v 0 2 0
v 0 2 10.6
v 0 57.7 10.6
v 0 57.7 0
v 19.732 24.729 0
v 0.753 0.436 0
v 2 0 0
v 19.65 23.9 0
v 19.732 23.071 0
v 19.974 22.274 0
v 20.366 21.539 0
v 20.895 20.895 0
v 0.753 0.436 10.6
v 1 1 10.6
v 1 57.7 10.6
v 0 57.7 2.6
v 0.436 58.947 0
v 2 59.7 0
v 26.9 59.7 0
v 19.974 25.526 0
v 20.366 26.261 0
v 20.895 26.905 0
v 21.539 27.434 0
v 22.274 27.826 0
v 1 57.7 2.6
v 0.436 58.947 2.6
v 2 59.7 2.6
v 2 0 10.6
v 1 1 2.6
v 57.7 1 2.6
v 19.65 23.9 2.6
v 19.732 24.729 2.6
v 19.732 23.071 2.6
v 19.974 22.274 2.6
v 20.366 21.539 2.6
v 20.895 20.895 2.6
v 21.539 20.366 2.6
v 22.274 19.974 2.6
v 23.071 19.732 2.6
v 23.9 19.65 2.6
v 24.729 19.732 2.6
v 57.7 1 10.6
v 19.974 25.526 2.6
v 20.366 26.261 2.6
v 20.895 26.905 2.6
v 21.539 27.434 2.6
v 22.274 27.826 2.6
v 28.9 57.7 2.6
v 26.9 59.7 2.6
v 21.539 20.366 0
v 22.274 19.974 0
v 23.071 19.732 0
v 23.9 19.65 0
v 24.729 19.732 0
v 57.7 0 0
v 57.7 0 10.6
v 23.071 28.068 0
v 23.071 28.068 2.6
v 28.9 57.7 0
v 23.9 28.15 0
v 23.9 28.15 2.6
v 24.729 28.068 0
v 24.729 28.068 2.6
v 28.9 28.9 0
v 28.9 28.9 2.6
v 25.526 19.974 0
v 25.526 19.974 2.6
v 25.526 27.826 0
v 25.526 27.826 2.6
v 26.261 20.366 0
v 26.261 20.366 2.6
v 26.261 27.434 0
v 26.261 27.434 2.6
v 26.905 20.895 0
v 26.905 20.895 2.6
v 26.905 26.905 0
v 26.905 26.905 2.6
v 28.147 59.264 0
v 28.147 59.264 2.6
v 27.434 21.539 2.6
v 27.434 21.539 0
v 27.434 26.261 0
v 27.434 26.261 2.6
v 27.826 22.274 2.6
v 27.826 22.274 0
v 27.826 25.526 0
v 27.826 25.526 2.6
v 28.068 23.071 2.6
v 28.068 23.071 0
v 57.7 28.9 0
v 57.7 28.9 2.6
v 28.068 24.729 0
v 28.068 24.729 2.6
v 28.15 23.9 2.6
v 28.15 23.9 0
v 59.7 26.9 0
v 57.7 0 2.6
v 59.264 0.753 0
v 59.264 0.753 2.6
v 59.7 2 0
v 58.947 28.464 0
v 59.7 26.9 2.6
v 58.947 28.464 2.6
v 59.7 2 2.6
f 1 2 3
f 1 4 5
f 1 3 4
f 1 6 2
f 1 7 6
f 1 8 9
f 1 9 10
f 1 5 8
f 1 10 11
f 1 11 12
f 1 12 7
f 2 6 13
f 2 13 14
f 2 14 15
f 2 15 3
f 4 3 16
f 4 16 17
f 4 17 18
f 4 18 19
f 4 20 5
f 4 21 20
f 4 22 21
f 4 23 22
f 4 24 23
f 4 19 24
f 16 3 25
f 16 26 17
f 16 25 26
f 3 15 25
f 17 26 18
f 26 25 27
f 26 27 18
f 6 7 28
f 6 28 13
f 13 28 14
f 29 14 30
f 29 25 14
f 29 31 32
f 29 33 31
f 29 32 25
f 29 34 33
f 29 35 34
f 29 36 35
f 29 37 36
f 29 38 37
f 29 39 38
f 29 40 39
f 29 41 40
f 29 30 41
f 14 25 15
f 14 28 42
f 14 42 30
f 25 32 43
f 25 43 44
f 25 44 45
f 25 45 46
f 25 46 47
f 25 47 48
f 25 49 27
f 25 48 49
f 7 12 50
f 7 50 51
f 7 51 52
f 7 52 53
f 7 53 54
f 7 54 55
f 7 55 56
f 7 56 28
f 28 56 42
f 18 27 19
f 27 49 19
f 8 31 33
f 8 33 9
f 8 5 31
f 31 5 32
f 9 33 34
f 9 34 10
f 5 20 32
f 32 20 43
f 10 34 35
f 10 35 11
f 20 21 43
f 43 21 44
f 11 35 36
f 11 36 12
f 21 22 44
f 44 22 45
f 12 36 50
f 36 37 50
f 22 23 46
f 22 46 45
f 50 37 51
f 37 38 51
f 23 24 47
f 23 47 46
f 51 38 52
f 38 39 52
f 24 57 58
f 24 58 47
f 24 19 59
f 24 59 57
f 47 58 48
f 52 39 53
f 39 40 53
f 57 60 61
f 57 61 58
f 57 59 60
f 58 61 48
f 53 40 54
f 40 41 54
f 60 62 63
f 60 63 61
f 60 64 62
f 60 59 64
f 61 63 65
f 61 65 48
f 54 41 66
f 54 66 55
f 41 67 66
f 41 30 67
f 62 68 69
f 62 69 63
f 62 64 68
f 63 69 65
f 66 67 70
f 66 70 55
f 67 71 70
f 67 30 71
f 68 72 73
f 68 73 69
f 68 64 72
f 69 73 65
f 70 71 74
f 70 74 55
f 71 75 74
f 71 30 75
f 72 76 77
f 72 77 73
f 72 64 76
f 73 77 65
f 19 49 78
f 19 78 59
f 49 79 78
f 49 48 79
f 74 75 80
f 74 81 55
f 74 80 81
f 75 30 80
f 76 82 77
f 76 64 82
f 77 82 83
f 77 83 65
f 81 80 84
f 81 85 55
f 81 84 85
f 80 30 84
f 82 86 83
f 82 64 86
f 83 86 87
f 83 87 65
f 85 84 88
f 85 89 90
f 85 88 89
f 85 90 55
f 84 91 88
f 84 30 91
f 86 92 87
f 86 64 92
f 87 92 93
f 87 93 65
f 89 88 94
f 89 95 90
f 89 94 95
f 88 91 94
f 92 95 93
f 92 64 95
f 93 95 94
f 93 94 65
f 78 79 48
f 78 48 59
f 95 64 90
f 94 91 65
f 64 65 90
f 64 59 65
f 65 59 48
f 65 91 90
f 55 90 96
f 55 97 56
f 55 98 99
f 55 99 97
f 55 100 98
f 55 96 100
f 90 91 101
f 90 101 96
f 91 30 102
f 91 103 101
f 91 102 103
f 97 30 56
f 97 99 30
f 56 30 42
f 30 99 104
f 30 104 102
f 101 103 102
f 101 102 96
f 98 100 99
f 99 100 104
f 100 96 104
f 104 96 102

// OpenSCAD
// file: params.scad
// Shared parameters for PIU LX Pad TPU spacers
// Include this file in other .scad files with:
//   include <params.scad>

// ============================================================
// L-BRACKET DIMENSIONS
// ============================================================

bracket_length = 69.7; // mm
bracket_width = 26.5; // mm
bracket_thickness = 3.6; // mm (metal + foam)

// ============================================================
// CORNER BRACKET DIMENSIONS
// ============================================================

arm_length_x = 56.2; // mm
arm_length_y = 56.2; // mm
arm_width = 25.4; // mm

// ============================================================
// SCREW HOLE
// ============================================================

screw_hole_diameter = 8.5; // mm
screw_hole_x = 5; // mm — from inner corner of L
screw_hole_y = 5; // mm — from inner corner of L

// ============================================================
// SHARED
// ============================================================

corner_radius = 2; // mm
spacer_thickness = 0.4; // mm — for test spacers

// ============================================================
// SHARED MODULES
// ============================================================

module rounded_rect(l, w, h, r) {
    linear_extrude(height = h)
        offset(r = r)
            square([l - 2*r, w - 2*r], center = true);
}

module l_shape(lx, ly, w) {
    union() {
        square([lx, w]);
        square([w, ly]);
    }
}

module l_shape_rounded(lx, ly, w, r) {
    offset(r = r)
    offset(delta = -r)
        l_shape(lx, ly, w);
}
// main file
// PIU LX Pad — Corner Bracket Topper (TPU Tape Mod Replacement)
// Sits on top of the L-shaped plastic corner bracket, held in place
// by the screw. A raised lip on the outer edges prevents the
// acrylic panel from sliding around.
//
// Print with TPU filament for foam-like compressibility.
// Print right-side up (lip grows upward from flat base).
// You need one per corner bracket (typically 4 per panel, 20 per pad).
//
// Based on 4199's PIU Pad Setup and Maintenance Guide.

include <params.scad>

// ============================================================
// PARAMETERS
// ============================================================

// The corner bracket is L-shaped:
//
//       arm_width
//      |<----->|
//      +-------+
//      |       |  ^  arm_length_y
//      |       |  v
//      |   +---+------+
//      |   | O        |  <- screw hole near the corner
//      +---+----------+
//          |<-------->|
//           arm_length_x
//
// Cross-section (viewing from arm end):
//
//    +-+                      lip
//    | |  lip_height           |
//    | +----------------------+
//    |    thickness            |
//    +------------------------+
//    |gap|    arm_width        |

// Thickness of the spacer (sits between bracket and panel)
thickness = 2.6; // mm

// --- Panel Lip ---
// Raised edge along the outer side of both arms to prevent
// the acrylic panel from sliding around.
lip_height = 8; // mm (panel is 10.2mm tall)
lip_thickness = 1; // mm
panel_gap = 3.5; // mm — gap between bracket outer edge and panel edge
lip_inset = 2; // mm — lip stops this far short of each arm tip

// ============================================================
// DERIVED
// ============================================================

total_height = thickness + lip_height;

// Outer dimensions including the panel gap extension
outer_arm_length_x = arm_length_x + panel_gap;
outer_arm_length_y = arm_length_y + panel_gap;
outer_arm_width = arm_width + panel_gap;

// ============================================================
// MODEL
// ============================================================

module corner_bracket_topper() {
    // The base and lip are shifted by panel_gap so the outer edge
    // (where the lip is) extends to meet the panel edge.
    difference() {
        union() {
            // Base: flat L-shaped spacer (extended to panel edge)
            linear_extrude(height = thickness)
                l_shape_rounded(outer_arm_length_x, outer_arm_length_y,
                                outer_arm_width, corner_radius);

            // Lip: full height along outer edges only
            linear_extrude(height = total_height)
                l_shape_rounded(outer_arm_length_x, outer_arm_length_y,
                                outer_arm_width, corner_radius);
        }

        // Carve away inner area above thickness, leaving outer lip
        translate([lip_thickness, lip_thickness, thickness])
            linear_extrude(height = lip_height + 0.01)
                l_shape(outer_arm_length_x, outer_arm_length_y,
                        outer_arm_width);

        // Trim lip at arm tips so walls are shorter than base
        translate([outer_arm_length_x - lip_inset, -0.01, thickness])
            cube([lip_inset + 0.01, outer_arm_width + 0.02, lip_height + 0.01]);
        translate([-0.01, outer_arm_length_y - lip_inset, thickness])
            cube([outer_arm_width + 0.02, lip_inset + 0.01, lip_height + 0.01]);

        // Screw hole (all the way through)
        // screw_hole_x/y measured from the inner (concave) corner of the L
        translate([panel_gap + arm_width - screw_hole_x,
                   panel_gap + arm_width - screw_hole_y, -0.5])
            cylinder(h = total_height + 1, d = screw_hole_diameter, $fn = 32);
    }
}

corner_bracket_topper();
